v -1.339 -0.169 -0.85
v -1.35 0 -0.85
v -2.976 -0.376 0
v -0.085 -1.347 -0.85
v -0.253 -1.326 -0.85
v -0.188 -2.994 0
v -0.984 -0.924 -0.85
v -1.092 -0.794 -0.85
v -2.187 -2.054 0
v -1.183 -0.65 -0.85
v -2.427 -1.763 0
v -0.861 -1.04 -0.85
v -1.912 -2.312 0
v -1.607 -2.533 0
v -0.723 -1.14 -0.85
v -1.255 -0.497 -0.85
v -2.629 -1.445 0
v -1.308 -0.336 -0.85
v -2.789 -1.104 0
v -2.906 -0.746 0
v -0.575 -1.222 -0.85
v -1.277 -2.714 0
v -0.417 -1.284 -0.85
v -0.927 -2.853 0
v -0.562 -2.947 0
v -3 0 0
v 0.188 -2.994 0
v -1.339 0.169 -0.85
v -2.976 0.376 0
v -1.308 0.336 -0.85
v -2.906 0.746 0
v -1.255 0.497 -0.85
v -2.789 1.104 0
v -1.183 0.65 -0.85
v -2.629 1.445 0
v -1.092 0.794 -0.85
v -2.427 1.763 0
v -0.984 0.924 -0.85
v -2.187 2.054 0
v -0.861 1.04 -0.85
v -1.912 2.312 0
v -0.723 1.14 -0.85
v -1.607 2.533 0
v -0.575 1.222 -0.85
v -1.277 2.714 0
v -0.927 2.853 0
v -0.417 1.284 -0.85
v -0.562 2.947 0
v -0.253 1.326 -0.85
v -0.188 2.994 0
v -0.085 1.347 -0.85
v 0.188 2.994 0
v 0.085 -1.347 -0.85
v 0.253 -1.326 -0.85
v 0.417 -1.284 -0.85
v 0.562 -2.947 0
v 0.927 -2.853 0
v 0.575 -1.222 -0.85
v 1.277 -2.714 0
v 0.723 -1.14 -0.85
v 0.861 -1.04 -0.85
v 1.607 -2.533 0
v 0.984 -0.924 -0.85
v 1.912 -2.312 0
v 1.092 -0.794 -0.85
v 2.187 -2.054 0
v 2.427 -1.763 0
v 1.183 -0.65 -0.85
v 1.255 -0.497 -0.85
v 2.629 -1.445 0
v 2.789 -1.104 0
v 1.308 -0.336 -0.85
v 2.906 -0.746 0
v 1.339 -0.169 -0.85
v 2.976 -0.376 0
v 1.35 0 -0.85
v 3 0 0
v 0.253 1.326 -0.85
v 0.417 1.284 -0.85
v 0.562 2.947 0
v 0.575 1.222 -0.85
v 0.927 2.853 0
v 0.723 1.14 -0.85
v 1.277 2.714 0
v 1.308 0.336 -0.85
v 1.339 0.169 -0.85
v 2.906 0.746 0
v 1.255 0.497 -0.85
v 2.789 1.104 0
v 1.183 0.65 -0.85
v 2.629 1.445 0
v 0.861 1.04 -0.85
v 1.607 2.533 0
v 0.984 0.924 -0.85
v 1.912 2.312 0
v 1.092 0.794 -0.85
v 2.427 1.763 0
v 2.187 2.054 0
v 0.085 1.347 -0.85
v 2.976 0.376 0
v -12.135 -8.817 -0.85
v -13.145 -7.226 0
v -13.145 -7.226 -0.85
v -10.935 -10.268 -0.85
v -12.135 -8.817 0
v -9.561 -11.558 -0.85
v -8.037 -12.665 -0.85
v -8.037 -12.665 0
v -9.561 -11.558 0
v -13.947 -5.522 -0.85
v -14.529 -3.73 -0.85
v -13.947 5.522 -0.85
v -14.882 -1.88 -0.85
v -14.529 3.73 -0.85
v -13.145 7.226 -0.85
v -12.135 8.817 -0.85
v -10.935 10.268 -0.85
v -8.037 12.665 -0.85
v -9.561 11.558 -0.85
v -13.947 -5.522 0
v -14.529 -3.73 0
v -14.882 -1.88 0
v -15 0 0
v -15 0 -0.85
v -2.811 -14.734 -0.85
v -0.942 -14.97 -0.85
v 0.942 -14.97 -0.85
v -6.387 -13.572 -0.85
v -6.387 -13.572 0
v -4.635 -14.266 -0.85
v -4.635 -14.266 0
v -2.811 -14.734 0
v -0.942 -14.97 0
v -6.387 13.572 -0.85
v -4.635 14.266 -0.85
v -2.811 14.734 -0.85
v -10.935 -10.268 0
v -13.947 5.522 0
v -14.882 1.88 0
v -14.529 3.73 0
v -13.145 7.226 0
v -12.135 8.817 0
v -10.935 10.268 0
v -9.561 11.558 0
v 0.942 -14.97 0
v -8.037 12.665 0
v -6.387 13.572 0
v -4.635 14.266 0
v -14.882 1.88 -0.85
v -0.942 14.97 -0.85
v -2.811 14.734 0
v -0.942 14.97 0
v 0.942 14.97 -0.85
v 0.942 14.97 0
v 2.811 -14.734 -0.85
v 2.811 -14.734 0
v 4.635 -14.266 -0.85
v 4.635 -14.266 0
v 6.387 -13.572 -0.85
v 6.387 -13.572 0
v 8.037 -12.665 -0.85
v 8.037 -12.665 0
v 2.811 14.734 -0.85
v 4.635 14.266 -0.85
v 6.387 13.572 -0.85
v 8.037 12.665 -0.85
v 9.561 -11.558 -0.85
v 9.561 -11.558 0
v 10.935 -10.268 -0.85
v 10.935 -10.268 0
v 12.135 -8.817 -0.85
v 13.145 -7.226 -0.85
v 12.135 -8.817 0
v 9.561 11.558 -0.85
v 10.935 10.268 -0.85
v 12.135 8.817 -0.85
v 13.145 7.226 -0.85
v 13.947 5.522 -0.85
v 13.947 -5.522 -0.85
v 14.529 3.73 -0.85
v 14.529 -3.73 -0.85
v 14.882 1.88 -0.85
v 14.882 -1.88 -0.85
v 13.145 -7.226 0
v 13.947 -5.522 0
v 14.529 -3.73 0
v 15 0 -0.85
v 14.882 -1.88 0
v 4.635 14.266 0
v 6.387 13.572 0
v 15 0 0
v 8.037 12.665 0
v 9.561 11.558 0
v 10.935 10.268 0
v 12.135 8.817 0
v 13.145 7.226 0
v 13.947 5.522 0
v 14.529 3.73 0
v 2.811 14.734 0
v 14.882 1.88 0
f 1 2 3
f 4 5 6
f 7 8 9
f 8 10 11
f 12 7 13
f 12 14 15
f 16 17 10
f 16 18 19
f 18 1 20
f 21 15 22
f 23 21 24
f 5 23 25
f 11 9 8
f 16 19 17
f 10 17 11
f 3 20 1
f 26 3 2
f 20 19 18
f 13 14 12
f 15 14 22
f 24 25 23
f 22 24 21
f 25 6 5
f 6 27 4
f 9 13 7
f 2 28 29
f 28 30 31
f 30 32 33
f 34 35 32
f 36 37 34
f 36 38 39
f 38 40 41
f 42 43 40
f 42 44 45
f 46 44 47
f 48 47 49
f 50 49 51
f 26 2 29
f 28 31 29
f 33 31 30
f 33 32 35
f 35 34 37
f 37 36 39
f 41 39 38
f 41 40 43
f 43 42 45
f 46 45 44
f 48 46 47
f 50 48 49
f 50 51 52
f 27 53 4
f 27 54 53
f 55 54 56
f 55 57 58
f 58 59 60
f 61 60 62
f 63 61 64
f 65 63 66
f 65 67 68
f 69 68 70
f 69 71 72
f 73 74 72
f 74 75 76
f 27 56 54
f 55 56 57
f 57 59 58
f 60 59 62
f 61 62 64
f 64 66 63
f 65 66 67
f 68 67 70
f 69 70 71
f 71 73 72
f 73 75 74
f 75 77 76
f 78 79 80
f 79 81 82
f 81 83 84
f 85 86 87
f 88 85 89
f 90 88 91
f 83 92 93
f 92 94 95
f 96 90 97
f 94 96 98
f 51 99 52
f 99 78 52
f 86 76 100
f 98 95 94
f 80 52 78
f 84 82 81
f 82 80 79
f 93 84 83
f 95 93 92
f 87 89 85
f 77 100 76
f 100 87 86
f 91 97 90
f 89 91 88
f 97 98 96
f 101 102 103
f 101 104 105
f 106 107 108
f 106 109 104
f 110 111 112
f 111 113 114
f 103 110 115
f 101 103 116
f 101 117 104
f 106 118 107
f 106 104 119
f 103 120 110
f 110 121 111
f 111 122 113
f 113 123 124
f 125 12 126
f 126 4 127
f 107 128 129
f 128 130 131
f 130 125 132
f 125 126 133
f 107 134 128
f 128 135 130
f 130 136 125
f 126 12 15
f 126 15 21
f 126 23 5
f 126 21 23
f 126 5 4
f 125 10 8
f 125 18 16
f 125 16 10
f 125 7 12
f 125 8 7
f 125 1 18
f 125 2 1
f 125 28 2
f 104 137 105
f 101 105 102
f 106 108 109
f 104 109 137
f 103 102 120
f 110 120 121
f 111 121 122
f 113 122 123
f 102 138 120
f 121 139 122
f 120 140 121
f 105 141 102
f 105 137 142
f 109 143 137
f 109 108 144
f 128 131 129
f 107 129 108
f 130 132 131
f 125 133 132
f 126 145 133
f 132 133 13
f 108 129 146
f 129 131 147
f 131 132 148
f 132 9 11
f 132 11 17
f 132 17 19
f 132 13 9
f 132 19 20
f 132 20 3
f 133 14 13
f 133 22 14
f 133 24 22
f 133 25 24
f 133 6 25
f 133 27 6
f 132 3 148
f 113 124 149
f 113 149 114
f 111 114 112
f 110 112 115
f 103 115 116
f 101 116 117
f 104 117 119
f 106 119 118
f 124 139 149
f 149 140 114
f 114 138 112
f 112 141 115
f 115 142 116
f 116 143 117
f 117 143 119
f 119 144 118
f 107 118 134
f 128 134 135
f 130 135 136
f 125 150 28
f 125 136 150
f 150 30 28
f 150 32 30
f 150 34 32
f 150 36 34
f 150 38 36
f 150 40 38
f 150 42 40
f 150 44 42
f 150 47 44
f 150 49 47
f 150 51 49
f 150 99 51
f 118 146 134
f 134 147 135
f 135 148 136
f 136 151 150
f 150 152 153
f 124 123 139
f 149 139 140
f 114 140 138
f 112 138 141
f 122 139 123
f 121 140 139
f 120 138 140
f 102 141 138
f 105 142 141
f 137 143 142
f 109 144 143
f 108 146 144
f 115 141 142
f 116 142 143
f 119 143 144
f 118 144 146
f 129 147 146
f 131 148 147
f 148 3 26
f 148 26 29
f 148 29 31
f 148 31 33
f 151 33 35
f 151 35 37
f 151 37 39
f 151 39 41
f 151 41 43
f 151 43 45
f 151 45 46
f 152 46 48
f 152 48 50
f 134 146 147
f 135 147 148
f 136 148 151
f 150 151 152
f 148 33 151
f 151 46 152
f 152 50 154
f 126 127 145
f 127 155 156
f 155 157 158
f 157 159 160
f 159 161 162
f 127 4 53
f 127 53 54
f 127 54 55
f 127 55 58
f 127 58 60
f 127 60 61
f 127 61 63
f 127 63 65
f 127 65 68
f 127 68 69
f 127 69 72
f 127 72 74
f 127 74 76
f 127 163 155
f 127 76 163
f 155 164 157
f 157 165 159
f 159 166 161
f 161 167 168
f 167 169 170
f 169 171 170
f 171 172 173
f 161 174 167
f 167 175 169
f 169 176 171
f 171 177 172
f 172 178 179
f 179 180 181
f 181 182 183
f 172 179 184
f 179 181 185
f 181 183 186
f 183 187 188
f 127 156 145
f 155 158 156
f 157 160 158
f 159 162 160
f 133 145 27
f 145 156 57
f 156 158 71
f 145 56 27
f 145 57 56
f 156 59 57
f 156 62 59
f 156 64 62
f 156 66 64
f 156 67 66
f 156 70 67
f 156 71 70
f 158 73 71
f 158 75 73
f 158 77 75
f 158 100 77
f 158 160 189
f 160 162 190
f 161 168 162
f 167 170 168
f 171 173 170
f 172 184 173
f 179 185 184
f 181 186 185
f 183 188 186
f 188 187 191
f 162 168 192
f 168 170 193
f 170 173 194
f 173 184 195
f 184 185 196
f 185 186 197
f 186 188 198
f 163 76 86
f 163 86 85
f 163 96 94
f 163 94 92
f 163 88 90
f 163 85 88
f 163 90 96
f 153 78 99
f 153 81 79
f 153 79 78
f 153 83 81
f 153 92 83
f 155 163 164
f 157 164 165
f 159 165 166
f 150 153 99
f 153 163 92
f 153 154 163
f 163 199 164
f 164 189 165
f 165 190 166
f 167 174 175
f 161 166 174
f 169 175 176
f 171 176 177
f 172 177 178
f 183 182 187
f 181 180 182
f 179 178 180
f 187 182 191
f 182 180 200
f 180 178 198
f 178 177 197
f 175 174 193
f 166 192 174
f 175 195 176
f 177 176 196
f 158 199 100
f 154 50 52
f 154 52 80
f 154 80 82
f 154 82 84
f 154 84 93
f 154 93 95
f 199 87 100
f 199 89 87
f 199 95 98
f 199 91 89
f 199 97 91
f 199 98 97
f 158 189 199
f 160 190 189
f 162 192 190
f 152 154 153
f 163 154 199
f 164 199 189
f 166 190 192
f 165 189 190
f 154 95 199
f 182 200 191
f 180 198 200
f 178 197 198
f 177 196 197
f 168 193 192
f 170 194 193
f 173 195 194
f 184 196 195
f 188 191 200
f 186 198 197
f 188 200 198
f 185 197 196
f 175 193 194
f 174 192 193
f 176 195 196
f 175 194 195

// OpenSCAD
$fn = 50;

difference() {
	union() {
		translate(v = [0, 0, -0.85]) {
			cylinder(h = 0.85, r = 15.0);
		}
	}
	union() {
		translate(v = [0, 0, 0]) {
			rotate(a = [0, 0, 0]) {
				difference() {
					union() {
						translate(v = [0, 0, -3.85]) {
							cylinder(h = 3.85, r = 1.0);
						}
						translate(v = [0, 0, -0.85]) {
							cylinder(h = 0.85, r1 = 1.35, r2 = 3.0);
						}
						translate(v = [0, 0, -3.85]) {
							cylinder(h = 3.85, r = 1.35);
						}
						translate(v = [0, 0, -3.85]) {
							cylinder(h = 3.85, r = 1.0);
						}
					}
					union();
				}
			}
		}
	}
}
